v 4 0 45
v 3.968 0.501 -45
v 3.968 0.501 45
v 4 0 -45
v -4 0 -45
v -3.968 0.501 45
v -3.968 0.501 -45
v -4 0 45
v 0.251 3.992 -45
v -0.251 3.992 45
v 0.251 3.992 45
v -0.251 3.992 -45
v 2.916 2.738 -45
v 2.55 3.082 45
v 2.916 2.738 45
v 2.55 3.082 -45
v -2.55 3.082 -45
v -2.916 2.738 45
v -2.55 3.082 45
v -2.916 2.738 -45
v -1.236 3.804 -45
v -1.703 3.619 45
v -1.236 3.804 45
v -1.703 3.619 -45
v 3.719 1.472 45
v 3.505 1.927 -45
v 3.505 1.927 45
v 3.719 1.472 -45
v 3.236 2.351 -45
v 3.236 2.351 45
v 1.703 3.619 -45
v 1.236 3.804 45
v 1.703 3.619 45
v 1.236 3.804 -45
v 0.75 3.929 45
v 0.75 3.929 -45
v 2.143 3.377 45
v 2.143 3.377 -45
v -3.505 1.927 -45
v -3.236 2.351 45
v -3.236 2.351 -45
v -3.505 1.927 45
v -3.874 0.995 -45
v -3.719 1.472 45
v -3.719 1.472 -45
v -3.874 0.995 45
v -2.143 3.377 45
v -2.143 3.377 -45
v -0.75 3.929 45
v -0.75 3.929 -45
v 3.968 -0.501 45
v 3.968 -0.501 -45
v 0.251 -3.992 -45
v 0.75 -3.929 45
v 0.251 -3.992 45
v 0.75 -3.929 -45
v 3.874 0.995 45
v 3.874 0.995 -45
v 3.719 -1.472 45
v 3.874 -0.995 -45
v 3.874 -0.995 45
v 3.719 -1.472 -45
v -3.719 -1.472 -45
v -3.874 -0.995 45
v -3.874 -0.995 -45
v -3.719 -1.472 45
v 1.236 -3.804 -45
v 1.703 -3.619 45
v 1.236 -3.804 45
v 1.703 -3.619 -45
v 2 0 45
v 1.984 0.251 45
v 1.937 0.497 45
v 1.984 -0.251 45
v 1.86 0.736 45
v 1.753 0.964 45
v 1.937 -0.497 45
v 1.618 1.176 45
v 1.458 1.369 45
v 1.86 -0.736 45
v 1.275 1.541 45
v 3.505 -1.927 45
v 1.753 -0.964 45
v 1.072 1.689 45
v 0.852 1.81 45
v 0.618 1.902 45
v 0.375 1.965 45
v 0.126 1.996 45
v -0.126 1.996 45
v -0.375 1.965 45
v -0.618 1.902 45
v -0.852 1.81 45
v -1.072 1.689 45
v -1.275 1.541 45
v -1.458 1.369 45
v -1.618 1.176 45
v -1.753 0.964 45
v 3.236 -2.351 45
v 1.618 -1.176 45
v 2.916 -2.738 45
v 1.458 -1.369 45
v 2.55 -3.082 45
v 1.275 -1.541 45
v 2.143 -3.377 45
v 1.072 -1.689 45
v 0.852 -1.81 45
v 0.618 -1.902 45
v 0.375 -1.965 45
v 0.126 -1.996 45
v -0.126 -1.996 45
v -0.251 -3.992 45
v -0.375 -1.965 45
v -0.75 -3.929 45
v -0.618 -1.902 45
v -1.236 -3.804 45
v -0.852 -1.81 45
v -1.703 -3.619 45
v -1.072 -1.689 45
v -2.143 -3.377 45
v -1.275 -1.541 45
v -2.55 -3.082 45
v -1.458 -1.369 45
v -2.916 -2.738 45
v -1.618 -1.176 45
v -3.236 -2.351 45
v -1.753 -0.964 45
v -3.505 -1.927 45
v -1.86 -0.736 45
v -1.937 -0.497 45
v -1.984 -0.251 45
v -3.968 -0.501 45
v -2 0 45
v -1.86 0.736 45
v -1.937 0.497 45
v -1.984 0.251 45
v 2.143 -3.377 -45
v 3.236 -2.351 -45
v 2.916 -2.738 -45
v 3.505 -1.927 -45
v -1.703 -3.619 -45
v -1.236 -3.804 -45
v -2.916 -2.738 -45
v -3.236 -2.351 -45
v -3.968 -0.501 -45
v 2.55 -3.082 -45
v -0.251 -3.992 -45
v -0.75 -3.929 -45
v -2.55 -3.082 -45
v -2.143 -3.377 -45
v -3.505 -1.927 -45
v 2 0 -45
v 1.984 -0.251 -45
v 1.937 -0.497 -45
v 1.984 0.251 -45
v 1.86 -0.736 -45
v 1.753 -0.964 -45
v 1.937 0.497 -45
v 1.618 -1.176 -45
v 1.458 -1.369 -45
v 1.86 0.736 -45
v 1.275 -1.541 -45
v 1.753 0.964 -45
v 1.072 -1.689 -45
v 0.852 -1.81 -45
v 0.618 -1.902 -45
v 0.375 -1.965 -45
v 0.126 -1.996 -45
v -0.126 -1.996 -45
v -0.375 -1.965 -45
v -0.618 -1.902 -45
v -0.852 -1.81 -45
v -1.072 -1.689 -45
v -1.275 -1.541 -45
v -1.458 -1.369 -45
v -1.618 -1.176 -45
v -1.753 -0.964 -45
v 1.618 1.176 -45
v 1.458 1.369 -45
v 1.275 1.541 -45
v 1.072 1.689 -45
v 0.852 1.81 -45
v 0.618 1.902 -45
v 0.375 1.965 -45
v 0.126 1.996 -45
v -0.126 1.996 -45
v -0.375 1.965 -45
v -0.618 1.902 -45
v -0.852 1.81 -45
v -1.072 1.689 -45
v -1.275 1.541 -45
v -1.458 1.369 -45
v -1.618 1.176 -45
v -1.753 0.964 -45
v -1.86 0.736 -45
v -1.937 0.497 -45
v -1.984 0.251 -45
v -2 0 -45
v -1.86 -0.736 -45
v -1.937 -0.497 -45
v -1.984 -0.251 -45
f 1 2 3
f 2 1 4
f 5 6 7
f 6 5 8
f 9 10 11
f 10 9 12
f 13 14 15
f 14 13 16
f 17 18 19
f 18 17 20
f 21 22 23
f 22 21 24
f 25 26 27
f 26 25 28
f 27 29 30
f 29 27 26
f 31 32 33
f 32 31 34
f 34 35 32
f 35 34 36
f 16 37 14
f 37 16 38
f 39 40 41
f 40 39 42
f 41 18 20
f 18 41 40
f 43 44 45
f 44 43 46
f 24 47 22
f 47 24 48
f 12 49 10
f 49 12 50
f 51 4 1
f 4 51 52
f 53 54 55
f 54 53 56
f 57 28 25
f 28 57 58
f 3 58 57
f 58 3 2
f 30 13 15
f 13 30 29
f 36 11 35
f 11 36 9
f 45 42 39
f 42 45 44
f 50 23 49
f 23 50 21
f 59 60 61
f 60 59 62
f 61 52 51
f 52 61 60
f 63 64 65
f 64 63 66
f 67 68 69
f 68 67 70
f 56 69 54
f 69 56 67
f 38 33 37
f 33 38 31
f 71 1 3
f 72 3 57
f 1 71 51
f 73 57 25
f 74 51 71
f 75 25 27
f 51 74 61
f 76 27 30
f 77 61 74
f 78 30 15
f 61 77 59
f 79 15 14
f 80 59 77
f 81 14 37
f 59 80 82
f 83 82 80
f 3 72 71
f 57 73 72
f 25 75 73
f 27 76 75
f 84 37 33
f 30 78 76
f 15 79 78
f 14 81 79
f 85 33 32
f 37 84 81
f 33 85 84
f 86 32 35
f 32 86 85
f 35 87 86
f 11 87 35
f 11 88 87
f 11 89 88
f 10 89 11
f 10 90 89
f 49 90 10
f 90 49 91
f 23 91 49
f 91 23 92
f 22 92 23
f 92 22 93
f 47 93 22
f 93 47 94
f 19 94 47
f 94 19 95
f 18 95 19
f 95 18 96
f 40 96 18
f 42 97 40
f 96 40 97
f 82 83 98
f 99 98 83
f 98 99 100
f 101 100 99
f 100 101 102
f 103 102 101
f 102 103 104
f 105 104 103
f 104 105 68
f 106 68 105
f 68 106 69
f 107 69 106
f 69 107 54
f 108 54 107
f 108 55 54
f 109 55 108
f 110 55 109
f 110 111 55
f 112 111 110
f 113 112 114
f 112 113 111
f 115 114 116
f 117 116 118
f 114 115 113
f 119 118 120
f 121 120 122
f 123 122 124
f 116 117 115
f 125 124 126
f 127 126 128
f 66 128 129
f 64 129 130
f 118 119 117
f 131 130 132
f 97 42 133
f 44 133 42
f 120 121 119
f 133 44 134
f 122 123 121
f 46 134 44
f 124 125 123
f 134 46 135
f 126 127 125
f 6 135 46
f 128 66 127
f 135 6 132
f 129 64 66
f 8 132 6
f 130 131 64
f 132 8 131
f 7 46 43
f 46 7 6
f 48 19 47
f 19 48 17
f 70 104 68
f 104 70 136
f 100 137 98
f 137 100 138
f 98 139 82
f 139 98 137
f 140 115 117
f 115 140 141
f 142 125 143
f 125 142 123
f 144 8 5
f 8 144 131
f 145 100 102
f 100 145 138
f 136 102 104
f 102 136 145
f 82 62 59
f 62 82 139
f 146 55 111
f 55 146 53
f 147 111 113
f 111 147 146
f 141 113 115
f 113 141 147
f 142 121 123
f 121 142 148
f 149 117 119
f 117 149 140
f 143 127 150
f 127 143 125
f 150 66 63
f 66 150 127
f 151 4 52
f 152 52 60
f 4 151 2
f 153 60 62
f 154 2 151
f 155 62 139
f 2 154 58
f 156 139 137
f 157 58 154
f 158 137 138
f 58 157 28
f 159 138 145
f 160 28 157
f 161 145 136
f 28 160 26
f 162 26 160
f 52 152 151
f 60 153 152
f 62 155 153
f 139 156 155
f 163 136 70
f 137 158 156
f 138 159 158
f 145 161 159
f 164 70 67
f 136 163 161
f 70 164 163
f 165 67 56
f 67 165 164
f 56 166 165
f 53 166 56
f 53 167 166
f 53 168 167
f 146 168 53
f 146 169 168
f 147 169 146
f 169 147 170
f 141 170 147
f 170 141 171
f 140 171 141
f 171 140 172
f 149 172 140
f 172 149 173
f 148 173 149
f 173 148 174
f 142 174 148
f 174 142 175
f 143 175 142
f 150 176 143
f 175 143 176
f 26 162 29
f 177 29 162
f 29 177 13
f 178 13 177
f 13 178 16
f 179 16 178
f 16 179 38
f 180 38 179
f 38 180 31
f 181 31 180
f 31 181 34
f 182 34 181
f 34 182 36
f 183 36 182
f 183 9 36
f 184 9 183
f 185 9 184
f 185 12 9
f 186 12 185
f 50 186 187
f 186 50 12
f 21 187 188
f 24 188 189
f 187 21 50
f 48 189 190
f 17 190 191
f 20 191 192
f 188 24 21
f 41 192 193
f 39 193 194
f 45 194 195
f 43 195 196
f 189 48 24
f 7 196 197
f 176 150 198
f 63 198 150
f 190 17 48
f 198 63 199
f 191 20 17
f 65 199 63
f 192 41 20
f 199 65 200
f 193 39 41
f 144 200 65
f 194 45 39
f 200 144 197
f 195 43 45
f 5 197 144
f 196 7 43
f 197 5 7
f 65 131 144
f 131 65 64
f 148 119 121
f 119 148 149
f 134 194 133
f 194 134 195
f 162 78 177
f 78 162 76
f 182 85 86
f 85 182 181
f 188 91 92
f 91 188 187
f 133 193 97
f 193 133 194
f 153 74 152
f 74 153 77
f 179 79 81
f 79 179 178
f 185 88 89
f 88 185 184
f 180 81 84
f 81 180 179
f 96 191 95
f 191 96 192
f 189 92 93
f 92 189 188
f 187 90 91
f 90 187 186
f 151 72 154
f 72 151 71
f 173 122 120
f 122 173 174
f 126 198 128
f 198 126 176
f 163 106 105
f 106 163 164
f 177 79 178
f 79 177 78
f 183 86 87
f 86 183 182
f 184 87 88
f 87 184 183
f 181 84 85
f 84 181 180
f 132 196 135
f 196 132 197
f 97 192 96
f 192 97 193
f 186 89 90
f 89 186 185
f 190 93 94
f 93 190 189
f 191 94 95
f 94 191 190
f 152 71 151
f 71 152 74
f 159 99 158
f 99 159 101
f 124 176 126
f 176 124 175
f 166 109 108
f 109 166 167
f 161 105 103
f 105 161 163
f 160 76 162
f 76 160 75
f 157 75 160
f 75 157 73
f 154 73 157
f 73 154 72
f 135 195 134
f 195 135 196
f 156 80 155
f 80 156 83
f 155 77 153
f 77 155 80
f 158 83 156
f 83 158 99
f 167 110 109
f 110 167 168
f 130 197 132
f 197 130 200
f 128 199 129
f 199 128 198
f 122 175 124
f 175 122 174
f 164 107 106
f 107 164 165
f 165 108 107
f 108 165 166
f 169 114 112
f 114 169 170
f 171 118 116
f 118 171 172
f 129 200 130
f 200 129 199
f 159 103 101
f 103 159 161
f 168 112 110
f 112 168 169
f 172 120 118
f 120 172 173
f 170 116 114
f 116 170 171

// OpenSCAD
$fn = 50;


difference() {
	union() {
		translate(v = [0, 0, -45.0000000000]) {
			cylinder(h = 90, r = 4.0000000000);
		}
	}
	union() {
		translate(v = [0, 0, -100.0000000000]) {
			cylinder(h = 200, r = 2.0000000000);
		}
	}
}
